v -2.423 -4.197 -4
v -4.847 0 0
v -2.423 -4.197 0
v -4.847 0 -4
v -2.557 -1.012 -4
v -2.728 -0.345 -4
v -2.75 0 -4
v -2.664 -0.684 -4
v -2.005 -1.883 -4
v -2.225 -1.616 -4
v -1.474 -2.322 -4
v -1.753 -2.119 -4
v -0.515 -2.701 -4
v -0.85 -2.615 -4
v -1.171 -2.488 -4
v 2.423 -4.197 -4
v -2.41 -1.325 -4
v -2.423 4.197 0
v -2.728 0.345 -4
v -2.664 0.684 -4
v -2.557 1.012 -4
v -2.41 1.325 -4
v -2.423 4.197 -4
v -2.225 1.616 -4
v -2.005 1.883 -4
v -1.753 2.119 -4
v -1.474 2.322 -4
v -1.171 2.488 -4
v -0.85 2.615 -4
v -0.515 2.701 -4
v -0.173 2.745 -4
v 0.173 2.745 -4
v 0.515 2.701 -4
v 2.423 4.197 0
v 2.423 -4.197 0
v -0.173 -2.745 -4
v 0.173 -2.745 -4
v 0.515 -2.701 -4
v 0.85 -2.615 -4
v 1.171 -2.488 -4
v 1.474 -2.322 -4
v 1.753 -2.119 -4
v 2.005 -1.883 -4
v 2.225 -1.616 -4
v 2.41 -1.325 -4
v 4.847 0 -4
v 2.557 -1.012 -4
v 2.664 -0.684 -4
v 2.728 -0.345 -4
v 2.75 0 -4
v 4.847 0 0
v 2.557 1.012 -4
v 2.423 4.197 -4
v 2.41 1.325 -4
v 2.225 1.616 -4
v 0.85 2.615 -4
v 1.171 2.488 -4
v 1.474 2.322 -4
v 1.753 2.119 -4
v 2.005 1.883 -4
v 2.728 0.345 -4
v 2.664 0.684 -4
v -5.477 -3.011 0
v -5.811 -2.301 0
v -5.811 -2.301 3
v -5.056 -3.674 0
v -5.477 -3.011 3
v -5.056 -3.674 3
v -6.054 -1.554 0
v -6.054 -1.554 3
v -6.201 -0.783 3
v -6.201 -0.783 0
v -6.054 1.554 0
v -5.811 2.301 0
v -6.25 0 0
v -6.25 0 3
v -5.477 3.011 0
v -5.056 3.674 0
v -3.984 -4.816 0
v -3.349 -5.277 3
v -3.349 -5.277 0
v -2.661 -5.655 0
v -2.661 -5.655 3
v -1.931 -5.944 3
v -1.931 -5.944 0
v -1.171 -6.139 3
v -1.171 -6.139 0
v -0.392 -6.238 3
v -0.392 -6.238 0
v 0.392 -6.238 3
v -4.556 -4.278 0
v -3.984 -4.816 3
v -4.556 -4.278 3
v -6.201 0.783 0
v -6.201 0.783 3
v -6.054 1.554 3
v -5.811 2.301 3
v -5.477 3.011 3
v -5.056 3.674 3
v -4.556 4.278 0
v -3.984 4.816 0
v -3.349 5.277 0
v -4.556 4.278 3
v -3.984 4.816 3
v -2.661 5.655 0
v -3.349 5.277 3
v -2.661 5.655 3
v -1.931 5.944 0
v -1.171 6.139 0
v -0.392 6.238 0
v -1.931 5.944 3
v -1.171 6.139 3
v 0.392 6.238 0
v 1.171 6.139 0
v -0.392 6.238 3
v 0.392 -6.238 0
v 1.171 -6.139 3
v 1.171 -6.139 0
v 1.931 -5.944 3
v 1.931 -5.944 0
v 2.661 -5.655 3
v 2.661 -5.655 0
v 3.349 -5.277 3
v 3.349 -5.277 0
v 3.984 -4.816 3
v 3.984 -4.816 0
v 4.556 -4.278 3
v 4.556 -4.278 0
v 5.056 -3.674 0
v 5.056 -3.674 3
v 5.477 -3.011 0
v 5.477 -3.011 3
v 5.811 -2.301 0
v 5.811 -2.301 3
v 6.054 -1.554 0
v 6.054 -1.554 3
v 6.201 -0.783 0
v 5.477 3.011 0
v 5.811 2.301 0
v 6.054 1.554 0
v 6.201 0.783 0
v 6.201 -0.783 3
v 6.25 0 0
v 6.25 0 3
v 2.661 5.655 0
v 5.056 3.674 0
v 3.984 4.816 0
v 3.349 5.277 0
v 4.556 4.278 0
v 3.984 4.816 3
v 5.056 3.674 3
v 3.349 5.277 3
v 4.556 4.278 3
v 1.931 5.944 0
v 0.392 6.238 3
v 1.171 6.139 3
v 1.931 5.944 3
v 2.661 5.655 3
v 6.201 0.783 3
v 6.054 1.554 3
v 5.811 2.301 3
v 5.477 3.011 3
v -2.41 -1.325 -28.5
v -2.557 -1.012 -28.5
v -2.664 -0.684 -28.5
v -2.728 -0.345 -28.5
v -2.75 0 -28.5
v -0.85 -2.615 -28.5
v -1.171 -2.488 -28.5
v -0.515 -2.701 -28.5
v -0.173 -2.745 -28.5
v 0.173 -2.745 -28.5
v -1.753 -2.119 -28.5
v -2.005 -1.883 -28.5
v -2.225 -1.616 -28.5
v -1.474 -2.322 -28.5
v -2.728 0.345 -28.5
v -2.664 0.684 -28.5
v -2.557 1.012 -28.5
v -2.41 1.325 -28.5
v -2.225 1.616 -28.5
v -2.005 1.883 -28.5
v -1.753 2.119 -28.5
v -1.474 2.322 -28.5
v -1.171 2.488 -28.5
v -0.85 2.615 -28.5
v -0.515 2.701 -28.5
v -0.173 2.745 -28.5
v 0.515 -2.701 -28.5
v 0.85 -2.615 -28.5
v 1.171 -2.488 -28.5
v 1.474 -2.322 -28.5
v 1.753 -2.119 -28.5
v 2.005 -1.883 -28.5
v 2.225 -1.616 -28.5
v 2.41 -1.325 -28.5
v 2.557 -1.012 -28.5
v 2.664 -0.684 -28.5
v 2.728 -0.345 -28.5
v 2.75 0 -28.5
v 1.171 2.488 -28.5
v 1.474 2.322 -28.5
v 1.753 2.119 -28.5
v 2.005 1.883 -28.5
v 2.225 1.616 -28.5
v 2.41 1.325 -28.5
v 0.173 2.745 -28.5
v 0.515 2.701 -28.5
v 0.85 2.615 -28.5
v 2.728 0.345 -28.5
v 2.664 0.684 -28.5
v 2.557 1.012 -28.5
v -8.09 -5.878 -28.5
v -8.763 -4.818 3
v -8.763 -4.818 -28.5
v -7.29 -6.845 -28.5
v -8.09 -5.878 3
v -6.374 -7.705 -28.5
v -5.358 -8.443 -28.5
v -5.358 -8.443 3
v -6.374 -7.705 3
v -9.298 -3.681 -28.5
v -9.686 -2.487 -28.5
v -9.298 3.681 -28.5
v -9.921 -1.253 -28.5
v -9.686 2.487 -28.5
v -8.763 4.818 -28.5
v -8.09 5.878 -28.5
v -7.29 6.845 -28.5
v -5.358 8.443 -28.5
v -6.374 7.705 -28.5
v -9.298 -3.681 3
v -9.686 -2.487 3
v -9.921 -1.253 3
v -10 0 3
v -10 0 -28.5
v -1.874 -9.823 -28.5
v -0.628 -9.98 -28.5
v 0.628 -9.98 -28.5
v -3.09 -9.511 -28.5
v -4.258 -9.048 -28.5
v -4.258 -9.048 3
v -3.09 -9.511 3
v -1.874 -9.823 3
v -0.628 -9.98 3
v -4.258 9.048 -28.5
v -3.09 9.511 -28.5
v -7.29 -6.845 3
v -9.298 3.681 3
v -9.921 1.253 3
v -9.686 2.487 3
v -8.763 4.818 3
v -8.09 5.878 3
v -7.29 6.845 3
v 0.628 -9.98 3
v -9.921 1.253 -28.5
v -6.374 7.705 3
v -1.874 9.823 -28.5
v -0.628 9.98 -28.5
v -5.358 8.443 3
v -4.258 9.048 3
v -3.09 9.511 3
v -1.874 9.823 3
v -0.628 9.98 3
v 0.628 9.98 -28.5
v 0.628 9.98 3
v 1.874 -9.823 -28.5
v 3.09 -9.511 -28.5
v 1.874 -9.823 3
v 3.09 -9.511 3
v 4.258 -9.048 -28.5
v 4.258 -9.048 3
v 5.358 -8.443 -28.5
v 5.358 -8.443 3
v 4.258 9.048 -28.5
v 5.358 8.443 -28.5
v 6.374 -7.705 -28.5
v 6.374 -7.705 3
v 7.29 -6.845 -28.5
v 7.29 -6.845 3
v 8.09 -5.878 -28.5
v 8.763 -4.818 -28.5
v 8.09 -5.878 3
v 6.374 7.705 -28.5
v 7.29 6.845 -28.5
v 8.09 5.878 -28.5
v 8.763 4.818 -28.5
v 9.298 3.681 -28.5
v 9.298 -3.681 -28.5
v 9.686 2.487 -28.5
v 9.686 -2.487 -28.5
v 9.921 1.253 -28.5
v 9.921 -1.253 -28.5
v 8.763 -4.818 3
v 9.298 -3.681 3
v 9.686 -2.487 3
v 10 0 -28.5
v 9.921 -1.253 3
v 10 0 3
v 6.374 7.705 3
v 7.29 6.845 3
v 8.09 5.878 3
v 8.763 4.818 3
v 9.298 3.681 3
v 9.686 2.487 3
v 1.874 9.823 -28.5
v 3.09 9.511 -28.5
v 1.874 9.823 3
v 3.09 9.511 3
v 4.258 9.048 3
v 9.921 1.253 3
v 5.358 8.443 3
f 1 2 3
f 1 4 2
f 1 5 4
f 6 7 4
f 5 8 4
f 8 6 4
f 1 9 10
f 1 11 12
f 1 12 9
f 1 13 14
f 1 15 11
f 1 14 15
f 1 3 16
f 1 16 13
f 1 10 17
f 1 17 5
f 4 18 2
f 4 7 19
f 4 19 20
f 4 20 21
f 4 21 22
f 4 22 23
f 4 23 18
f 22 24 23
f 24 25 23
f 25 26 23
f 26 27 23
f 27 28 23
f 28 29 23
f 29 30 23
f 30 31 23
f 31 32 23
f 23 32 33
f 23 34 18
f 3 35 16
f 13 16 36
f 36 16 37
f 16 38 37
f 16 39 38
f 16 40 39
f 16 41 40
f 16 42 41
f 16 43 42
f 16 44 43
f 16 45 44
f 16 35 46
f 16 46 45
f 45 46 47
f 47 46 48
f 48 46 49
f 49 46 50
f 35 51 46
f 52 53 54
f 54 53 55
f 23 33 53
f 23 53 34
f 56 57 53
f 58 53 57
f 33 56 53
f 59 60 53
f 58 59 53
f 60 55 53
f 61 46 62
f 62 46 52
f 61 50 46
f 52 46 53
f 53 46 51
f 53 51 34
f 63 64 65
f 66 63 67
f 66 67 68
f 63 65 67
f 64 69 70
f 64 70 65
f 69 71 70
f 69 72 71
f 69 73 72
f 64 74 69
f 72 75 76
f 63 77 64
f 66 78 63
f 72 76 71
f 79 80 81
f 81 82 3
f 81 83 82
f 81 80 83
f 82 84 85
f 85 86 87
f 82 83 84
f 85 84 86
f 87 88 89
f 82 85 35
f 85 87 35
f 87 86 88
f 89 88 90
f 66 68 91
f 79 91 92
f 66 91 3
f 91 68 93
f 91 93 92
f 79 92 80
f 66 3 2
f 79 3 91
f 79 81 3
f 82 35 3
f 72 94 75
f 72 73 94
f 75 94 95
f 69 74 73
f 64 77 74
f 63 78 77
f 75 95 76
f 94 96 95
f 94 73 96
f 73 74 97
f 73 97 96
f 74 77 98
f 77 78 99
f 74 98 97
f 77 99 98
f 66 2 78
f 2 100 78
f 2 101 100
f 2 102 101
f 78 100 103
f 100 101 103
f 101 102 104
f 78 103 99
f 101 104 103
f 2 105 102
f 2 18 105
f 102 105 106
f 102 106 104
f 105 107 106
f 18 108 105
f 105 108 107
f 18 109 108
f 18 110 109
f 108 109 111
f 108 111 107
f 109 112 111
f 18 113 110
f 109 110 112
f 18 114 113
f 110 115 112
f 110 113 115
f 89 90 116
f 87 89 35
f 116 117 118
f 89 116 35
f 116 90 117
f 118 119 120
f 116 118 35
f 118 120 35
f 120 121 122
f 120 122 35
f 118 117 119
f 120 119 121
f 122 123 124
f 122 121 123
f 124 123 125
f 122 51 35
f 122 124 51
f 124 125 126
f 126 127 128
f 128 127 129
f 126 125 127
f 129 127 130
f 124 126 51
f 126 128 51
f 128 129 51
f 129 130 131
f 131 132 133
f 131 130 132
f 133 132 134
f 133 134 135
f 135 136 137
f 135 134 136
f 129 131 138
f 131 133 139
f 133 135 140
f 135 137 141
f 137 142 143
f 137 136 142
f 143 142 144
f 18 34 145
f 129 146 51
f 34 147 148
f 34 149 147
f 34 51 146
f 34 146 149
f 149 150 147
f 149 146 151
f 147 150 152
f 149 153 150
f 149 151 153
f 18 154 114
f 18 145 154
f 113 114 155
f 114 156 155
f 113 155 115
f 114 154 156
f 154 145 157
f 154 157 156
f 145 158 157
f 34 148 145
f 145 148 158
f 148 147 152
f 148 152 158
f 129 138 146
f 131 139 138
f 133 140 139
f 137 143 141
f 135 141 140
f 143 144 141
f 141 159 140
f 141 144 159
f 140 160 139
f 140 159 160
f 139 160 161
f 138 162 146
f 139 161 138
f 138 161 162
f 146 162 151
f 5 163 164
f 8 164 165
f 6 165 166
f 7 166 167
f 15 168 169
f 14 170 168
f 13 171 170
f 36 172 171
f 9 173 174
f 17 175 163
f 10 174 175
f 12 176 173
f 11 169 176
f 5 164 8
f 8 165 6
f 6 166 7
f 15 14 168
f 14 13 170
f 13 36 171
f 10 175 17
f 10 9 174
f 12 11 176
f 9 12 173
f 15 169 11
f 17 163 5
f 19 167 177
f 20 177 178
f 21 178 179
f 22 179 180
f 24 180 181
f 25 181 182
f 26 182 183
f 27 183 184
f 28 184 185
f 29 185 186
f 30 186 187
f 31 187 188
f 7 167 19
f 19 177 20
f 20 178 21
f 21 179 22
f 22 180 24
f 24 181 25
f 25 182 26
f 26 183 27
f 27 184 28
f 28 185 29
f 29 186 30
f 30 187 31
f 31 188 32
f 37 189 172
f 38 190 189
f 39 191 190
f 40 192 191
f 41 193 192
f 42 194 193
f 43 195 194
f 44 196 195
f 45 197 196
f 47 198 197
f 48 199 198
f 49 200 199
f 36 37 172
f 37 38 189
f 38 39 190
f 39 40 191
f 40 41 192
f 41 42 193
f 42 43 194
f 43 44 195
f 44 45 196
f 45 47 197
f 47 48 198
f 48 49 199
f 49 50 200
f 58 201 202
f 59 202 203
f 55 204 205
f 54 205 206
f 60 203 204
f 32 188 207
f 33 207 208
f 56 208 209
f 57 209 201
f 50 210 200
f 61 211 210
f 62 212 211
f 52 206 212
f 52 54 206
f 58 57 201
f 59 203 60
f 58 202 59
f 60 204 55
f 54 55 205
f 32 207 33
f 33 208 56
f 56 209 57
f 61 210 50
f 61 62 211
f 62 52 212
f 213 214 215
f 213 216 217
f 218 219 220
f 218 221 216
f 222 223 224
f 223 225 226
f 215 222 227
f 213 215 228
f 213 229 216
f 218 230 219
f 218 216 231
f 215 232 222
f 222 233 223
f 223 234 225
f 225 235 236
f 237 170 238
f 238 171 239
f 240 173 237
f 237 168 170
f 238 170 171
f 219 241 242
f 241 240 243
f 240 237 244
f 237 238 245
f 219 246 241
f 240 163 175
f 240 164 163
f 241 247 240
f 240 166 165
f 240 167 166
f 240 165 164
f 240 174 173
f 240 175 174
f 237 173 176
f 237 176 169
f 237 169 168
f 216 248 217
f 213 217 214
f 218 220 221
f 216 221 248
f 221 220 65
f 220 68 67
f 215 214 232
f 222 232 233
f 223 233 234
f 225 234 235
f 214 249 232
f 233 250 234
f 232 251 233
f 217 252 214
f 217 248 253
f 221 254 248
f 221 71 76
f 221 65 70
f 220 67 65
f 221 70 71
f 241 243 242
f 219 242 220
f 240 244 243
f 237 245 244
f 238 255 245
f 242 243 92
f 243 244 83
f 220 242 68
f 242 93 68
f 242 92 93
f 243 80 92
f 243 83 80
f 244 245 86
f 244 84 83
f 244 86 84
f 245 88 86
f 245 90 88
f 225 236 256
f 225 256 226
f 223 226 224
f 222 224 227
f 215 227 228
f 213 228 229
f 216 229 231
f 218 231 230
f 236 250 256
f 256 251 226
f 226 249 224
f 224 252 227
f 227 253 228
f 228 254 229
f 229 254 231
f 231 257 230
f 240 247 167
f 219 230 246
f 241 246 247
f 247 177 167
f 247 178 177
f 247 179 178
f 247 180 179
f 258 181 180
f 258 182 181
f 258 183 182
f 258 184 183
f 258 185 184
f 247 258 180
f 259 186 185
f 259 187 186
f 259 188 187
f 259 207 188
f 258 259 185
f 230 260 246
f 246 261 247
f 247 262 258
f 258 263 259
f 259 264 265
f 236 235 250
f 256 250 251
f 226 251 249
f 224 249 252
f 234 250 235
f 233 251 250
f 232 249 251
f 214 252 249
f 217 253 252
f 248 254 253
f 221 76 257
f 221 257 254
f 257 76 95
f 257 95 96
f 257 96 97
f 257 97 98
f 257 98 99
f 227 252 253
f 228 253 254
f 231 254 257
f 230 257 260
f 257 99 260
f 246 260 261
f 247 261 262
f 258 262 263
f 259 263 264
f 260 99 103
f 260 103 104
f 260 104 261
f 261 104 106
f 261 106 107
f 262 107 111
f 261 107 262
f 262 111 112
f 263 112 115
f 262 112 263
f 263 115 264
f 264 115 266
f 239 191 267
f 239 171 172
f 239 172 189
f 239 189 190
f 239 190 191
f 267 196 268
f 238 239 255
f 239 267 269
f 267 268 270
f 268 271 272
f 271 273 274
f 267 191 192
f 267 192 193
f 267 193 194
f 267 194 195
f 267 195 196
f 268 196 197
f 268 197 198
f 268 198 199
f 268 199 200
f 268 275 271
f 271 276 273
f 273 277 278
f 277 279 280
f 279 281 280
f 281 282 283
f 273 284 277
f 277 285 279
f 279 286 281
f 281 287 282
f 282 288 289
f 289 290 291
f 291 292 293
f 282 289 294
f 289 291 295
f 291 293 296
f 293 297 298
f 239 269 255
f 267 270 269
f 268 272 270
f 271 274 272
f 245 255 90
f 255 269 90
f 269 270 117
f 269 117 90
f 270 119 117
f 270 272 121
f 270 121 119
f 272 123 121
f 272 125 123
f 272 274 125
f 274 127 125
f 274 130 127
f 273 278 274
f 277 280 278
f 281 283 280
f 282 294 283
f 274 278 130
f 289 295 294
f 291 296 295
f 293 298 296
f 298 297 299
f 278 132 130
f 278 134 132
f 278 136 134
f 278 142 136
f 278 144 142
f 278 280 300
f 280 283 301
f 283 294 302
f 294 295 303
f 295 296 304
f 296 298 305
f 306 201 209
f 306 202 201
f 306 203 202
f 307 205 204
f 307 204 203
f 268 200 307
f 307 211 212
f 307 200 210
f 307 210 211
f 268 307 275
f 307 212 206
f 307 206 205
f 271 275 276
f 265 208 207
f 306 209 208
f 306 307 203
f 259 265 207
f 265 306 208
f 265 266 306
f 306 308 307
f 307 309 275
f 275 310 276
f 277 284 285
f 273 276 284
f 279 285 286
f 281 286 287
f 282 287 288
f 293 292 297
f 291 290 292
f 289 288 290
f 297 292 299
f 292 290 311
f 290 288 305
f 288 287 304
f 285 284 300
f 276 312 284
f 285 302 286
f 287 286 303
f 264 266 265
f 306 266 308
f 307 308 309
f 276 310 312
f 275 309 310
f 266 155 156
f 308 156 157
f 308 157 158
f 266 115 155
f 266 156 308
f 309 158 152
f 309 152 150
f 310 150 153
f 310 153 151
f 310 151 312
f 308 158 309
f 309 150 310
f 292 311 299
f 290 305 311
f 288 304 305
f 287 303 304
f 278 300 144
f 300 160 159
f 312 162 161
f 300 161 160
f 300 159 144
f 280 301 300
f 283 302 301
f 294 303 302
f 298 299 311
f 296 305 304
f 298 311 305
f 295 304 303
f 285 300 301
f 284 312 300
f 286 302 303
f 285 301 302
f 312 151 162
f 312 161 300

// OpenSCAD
$fn = 50;

difference() {
	union() {
		translate(v = [0, 0, -28.5]) {
			cylinder(h = 31.5, r = 10.0);
		}
	}
	union() {
		translate(v = [0, 0, 0]) {
			rotate(a = [0, 0, 0]) {
				difference() {
					union() {
						translate(v = [0, 0, -4]) {
							linear_extrude(height = 4) {
								polygon(points = [[4.8468, 0.0], [2.4234000000000004, 4.197451927062417], [-2.423399999999999, 4.197451927062417], [-4.8468, 5.935618106107392e-16], [-2.423400000000002, -4.197451927062416], [2.423399999999997, -4.197451927062419]]);
							}
						}
					}
					union();
				}
			}
		}
		#cylinder(h = 3, r = 6.25);
		#translate(v = [0, 0, -100.0]) {
			cylinder(h = 200, r = 2.75);
		}
	}
}
